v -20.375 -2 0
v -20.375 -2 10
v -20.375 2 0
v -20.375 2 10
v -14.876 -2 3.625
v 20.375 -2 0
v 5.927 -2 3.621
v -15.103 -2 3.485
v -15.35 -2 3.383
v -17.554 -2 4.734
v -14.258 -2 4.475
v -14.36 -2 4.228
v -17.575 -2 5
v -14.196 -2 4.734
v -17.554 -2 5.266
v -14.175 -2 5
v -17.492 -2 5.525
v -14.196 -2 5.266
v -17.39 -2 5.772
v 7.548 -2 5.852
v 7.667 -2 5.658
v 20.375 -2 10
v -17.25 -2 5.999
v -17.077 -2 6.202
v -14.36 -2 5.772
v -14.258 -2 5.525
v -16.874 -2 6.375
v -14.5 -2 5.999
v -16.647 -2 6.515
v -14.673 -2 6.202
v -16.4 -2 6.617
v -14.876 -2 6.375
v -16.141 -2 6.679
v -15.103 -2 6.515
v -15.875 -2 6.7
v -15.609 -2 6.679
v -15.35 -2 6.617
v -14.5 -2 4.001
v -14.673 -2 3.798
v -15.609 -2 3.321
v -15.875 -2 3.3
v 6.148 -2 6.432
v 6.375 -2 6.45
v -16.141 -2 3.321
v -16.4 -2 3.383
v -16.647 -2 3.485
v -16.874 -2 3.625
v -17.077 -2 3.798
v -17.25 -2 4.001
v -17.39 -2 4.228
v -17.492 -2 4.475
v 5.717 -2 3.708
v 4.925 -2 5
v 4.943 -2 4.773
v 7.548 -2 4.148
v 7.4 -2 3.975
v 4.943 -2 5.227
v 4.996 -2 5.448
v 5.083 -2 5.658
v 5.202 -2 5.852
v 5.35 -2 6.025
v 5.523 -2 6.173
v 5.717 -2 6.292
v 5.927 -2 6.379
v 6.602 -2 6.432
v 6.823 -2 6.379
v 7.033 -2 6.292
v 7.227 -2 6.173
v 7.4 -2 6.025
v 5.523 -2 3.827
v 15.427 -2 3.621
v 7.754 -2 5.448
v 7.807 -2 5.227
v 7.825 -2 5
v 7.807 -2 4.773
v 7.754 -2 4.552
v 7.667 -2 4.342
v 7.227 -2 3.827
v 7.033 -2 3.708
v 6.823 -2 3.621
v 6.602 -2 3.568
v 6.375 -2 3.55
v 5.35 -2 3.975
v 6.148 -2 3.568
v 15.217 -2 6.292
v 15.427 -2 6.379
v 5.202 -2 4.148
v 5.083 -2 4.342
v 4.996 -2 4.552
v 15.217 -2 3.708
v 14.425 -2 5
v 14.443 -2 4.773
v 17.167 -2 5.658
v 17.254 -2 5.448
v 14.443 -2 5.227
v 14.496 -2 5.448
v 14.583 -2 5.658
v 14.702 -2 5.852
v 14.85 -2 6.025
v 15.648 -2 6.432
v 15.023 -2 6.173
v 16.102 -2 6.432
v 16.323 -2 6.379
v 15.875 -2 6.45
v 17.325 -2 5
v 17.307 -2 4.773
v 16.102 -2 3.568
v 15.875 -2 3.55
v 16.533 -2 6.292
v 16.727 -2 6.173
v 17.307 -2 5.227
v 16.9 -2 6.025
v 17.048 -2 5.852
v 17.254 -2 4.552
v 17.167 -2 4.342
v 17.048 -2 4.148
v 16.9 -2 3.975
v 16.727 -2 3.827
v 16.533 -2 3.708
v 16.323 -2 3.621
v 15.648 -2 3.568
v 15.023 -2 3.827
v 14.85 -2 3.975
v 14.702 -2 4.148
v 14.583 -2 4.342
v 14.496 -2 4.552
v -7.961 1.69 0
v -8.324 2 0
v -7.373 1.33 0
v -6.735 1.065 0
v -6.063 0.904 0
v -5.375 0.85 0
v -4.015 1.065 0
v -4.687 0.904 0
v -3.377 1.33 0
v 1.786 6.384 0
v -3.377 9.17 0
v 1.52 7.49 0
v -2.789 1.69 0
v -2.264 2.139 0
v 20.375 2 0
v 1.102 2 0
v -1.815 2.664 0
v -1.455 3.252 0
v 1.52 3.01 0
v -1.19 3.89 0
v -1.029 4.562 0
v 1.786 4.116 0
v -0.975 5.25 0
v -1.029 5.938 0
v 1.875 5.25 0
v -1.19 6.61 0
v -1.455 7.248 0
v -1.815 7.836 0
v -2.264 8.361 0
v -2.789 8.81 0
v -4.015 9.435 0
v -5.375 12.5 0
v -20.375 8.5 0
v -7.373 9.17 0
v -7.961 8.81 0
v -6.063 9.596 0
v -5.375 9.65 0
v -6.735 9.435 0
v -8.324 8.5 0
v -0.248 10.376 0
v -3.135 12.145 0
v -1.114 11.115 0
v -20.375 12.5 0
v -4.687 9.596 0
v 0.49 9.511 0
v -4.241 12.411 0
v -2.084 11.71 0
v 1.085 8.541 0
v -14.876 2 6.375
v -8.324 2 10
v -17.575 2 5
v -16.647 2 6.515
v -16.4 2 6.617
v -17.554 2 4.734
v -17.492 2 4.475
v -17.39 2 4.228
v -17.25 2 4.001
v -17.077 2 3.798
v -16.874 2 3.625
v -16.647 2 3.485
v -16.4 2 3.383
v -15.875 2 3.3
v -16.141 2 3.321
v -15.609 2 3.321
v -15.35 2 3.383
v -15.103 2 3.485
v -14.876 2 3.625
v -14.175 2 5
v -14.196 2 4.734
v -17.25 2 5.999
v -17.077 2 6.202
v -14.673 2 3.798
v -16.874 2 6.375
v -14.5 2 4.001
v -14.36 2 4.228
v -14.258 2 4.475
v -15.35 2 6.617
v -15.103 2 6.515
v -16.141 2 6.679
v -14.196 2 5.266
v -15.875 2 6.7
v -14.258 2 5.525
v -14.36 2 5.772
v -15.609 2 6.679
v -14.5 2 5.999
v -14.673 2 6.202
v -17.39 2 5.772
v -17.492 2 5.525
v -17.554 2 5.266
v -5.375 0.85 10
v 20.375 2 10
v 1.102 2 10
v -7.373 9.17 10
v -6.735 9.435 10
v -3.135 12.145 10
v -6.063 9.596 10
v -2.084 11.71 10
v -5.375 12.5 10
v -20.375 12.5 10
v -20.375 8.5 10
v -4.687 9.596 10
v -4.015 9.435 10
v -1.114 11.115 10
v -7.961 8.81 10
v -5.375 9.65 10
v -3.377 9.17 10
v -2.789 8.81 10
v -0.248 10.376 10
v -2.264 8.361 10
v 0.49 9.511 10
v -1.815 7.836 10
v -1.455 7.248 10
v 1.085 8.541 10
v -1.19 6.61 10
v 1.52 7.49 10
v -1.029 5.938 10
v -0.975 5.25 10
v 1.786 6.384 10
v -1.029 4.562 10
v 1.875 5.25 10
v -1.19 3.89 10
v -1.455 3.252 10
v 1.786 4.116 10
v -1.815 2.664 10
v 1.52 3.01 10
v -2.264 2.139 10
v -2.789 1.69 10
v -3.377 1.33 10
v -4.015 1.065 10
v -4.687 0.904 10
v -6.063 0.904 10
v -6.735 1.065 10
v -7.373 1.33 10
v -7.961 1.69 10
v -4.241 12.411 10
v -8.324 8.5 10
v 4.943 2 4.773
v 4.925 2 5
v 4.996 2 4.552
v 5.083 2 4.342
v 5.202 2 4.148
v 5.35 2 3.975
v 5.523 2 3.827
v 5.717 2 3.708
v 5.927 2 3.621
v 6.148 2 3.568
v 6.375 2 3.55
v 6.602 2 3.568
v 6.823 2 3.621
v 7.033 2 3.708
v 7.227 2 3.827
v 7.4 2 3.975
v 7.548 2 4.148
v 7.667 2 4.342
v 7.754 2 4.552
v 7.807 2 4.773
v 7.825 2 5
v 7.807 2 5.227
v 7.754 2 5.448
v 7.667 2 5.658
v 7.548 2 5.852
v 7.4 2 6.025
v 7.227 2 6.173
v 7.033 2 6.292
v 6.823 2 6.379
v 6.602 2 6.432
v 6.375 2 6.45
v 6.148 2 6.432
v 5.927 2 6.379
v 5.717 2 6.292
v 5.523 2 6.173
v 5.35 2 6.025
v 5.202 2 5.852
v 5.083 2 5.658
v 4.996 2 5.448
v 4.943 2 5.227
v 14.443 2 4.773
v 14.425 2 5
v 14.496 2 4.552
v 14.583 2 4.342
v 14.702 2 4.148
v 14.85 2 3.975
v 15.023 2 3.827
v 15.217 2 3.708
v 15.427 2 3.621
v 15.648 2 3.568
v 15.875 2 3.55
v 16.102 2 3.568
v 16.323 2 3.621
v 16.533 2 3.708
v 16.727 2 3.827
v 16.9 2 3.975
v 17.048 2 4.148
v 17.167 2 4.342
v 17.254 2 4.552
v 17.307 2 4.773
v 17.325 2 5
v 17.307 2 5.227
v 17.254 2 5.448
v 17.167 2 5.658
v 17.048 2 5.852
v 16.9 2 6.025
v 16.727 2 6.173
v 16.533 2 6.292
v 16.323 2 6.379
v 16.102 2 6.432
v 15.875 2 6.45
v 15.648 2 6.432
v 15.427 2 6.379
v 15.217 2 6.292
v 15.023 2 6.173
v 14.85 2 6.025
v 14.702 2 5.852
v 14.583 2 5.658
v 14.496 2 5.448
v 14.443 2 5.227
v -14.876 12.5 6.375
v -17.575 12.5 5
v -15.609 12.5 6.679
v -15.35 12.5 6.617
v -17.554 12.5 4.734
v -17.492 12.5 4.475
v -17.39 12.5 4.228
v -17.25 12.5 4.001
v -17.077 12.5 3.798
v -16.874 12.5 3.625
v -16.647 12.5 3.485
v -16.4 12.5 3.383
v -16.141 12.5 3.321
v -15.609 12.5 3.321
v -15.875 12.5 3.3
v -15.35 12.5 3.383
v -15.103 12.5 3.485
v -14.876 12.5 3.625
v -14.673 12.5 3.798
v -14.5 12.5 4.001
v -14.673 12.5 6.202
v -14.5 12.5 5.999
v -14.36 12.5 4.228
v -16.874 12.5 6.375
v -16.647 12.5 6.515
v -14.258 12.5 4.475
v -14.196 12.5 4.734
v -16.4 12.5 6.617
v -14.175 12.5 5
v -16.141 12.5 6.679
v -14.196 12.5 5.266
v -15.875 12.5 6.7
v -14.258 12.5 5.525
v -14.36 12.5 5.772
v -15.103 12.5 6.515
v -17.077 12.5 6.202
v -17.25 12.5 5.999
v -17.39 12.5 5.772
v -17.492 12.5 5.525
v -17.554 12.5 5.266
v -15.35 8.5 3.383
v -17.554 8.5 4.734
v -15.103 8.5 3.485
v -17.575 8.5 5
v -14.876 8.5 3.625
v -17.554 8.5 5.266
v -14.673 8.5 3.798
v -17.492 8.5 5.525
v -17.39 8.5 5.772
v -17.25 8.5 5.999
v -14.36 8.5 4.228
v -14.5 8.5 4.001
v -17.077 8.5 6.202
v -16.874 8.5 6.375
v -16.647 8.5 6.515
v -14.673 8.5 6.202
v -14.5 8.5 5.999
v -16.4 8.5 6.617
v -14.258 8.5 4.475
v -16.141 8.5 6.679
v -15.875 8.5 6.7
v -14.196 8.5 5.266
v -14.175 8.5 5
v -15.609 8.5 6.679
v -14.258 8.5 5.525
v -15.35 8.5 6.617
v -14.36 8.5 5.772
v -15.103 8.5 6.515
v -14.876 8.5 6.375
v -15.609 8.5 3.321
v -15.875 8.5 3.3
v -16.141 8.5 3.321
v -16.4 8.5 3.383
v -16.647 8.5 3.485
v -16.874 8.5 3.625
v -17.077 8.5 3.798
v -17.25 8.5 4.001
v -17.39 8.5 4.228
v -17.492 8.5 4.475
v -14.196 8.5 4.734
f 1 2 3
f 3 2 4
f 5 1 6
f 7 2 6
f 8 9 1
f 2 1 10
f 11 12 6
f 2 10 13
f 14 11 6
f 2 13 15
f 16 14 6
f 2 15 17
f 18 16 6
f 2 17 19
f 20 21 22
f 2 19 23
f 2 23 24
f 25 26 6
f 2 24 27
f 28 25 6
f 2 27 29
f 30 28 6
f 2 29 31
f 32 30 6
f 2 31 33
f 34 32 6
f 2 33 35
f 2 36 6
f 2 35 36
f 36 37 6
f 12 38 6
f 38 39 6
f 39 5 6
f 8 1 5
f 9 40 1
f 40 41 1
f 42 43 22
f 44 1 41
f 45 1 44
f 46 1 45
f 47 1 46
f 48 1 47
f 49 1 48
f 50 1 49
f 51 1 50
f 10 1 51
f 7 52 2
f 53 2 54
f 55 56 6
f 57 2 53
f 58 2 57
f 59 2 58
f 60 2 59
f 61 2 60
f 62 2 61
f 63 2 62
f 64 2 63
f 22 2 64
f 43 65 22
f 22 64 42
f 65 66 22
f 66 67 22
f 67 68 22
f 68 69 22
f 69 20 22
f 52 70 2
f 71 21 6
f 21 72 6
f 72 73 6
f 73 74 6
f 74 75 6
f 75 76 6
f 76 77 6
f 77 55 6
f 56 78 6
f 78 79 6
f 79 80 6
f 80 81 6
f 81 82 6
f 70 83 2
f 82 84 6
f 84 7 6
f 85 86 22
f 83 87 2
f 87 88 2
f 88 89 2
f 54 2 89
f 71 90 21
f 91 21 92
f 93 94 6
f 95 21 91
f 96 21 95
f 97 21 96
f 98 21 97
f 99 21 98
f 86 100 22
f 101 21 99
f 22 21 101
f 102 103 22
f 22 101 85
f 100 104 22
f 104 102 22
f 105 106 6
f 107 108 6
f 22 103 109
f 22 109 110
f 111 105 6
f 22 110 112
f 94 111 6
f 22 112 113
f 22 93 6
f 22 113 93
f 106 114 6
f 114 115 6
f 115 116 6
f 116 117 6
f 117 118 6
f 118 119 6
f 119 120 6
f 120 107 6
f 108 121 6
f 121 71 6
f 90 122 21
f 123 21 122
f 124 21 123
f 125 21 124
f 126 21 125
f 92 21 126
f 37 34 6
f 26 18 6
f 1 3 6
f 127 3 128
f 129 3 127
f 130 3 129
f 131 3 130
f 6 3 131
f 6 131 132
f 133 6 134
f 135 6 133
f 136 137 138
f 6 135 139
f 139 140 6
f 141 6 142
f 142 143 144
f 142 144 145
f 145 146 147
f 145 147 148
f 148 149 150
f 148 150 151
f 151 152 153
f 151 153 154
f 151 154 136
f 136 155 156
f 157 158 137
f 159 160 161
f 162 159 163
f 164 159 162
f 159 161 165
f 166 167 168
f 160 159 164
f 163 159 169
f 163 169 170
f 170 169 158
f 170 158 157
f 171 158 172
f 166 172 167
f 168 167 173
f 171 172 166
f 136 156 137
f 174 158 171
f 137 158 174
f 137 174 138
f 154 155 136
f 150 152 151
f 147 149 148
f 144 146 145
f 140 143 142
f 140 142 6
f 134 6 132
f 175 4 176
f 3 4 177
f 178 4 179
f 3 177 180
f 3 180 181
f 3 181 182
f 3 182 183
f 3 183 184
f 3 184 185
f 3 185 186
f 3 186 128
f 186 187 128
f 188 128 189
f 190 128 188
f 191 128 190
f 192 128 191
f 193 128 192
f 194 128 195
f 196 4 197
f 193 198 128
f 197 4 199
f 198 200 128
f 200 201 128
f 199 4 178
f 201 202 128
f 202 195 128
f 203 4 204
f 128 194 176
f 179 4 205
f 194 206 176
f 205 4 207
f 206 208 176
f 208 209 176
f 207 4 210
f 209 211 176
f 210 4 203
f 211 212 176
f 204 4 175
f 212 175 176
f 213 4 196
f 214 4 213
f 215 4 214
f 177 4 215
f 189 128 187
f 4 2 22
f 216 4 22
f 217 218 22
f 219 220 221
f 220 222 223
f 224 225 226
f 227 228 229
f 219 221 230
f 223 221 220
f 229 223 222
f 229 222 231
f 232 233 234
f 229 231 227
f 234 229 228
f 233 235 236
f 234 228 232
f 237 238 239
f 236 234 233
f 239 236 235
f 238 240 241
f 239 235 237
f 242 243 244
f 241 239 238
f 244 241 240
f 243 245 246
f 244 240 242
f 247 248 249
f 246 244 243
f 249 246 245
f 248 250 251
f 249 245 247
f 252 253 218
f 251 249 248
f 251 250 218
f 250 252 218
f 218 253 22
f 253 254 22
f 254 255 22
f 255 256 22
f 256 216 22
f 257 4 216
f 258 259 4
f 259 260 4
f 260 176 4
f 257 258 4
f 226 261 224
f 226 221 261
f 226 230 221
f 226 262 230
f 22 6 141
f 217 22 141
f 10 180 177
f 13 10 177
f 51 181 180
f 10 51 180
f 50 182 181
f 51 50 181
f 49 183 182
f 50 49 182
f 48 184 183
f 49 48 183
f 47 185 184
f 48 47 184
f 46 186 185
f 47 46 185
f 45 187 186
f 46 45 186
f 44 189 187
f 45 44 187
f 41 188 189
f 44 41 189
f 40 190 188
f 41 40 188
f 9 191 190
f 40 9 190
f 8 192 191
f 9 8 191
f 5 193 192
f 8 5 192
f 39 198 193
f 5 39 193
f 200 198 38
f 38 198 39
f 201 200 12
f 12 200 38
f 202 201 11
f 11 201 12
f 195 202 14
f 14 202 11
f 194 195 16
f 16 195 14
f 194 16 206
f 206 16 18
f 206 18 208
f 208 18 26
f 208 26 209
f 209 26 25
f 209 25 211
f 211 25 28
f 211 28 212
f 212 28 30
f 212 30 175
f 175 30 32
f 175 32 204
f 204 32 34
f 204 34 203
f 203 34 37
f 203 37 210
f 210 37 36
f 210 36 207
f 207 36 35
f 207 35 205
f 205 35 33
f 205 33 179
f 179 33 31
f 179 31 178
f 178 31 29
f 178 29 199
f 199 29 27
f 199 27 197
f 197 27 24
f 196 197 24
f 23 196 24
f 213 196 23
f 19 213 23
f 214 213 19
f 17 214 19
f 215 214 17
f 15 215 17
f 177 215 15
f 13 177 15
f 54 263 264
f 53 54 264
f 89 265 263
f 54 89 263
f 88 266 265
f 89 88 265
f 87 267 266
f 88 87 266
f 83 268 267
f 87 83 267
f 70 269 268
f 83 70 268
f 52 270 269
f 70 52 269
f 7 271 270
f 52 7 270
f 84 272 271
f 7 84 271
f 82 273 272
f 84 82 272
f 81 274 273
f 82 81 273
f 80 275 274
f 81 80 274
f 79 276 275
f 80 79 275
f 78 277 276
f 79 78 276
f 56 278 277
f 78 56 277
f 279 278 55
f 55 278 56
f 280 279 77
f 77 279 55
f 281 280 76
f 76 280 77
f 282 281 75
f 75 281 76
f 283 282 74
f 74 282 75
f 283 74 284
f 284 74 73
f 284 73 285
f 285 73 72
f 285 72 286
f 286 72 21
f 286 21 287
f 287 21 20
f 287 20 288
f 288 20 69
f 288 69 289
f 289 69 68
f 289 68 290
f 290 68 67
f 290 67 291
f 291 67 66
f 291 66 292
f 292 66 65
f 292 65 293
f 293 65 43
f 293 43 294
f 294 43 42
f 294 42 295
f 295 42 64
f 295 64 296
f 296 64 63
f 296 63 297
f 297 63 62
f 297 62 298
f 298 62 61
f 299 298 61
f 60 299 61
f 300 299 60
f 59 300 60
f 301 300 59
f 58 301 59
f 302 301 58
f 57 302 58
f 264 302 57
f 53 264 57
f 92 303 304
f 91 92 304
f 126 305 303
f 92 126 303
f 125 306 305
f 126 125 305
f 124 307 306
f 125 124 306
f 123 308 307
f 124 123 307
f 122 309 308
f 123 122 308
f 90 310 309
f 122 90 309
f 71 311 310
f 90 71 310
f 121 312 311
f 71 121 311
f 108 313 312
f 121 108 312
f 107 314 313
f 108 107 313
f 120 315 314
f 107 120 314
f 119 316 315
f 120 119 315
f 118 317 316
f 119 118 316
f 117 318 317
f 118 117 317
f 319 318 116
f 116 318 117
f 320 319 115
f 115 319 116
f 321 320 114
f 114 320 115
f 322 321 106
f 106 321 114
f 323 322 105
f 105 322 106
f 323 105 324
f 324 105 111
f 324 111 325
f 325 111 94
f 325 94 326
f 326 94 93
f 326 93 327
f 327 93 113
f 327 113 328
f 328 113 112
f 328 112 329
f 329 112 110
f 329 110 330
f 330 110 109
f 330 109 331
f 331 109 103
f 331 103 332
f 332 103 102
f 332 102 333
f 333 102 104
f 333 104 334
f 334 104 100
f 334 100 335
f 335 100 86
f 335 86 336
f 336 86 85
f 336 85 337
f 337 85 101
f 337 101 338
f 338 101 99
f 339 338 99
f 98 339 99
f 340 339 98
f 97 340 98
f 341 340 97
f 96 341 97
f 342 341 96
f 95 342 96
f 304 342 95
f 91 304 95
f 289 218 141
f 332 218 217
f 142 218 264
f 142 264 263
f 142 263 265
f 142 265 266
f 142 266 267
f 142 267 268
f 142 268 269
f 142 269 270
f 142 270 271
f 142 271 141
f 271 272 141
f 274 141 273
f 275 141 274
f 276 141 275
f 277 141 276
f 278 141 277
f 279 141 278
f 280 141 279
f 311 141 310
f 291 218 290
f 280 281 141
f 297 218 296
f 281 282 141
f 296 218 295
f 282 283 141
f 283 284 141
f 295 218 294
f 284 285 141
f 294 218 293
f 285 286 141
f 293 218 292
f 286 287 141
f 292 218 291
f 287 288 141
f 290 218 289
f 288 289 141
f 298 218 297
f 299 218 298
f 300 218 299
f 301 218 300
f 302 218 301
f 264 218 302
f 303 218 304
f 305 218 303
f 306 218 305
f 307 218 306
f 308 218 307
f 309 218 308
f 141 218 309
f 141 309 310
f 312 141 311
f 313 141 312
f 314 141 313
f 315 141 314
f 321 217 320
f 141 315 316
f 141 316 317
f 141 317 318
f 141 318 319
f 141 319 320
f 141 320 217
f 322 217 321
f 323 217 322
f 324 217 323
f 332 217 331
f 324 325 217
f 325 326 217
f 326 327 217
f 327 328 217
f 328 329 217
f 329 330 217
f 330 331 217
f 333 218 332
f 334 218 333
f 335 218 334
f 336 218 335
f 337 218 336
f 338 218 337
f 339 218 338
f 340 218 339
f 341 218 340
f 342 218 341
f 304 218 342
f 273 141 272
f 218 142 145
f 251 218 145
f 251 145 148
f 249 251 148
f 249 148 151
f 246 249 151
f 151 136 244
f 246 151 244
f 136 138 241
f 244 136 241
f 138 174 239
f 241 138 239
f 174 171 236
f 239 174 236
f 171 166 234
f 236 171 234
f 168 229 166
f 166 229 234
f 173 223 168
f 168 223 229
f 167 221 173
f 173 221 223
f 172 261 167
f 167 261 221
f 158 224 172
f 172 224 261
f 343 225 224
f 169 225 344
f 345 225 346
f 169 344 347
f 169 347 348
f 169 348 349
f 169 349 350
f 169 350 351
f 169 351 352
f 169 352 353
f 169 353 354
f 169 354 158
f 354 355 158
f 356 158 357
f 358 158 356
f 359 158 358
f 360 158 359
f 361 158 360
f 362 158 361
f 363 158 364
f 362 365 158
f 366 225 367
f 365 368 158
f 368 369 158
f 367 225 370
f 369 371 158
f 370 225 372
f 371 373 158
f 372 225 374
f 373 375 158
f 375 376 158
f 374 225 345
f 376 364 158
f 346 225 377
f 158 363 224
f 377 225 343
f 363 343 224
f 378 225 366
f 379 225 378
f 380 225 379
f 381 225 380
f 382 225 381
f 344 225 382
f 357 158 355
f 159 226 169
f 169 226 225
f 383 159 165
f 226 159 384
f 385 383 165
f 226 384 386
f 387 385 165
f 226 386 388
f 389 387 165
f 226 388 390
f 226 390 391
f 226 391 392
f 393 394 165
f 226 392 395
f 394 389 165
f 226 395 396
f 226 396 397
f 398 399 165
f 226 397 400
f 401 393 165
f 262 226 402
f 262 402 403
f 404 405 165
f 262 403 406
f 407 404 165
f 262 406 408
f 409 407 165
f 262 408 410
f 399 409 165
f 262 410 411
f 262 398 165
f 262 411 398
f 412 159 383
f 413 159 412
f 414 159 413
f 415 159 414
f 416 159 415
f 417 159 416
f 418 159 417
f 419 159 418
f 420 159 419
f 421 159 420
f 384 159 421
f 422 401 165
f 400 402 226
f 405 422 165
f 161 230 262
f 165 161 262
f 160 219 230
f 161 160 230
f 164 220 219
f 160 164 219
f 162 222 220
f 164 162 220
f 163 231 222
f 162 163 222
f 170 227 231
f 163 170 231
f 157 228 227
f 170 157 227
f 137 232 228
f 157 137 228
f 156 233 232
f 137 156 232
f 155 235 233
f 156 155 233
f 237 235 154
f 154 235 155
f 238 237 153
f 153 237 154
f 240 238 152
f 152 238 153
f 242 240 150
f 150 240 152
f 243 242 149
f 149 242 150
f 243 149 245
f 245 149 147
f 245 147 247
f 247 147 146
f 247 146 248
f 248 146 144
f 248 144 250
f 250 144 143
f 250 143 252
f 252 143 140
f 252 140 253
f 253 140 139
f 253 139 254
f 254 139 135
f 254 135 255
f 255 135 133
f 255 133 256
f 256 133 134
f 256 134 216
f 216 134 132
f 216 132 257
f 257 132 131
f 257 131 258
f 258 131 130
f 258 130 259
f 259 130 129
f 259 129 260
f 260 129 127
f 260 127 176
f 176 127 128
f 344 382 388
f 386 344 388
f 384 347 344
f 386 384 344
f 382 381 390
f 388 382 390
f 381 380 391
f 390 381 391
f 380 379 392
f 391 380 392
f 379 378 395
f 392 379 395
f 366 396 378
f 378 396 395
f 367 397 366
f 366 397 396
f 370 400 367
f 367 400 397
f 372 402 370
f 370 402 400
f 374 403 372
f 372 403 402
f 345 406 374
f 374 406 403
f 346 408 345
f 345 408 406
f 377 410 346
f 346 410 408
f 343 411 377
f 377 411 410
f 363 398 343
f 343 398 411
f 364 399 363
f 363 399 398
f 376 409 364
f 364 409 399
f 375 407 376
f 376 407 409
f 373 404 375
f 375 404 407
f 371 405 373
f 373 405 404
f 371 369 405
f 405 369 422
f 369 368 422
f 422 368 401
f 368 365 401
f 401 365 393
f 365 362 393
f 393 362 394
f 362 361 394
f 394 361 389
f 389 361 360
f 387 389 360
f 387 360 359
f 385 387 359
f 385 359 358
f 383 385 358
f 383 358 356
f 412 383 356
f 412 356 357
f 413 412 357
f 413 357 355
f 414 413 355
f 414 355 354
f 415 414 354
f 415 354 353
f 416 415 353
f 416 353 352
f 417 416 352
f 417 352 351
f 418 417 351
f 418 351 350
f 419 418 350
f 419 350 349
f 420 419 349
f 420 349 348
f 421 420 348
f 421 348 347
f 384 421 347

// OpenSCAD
bw = 4; // bracket width
bh = 10; // bracket height
cl = 15; // clamp length
ad = 8; // axle diameter
hd = 3; // bolt hole diameter
nd = 6; // bolt nut diameter
mhd = 2.5; // microswitch hole diameter
ai = 0.75; // axle inset for clamp
xw = 0.4; // extrude width
mhs = 9.5; // microswitch hole separation
bl = cl + ad / 2 + (bw - ai) + hd * 3 + mhs; // bracket length
translate([0,0,bh/2]){
	difference(){
		union(){
			cube([bl,bw,bh], center = true);
			translate([-bl/2 + cl/2,bw + ad - 2*ai,0])
				cube([cl,bw,bh], center = true);
			difference(){
				translate([-bl/2 + cl,(ad+bw)/2-ai,0]) 
					cylinder(r=ad/2+bw-ai, h = bh, center = true, $fn = 40);
				translate([-bl/2+cl-ad/2-bw/2+ai/2,(ad+bw)/2-ai,0])
					cube([ad/2+bw-ai,ad,(bh+xw)],center=true);
			}
		}
		# translate([-bl/2 + cl,(ad+bw)/2-ai,0]) cylinder(r=ad/2+xw,h=bl,
		            center = true, $fn = 40);
		# translate([-bl/2+hd*1.5,(ad+bw)/2-ai,0]) rotate([90,0,0]) 
			cylinder(r=(hd+xw)/2, h = ad + bw*2 + xw,
			  center = true, $fn = 40);
		# translate([bl/2-hd*1.5,0,0]) rotate([90,0,0]) 
			cylinder(r=(mhd+xw)/2, h = (bw + xw),
			  center = true, $fn = 40);
		# translate([bl/2-hd*1.5-mhs,0,0]) rotate([90,0,0]) 
			cylinder(r=(mhd+xw)/2, h = (bw + xw),
			  center = true, $fn = 40);
	}
}
